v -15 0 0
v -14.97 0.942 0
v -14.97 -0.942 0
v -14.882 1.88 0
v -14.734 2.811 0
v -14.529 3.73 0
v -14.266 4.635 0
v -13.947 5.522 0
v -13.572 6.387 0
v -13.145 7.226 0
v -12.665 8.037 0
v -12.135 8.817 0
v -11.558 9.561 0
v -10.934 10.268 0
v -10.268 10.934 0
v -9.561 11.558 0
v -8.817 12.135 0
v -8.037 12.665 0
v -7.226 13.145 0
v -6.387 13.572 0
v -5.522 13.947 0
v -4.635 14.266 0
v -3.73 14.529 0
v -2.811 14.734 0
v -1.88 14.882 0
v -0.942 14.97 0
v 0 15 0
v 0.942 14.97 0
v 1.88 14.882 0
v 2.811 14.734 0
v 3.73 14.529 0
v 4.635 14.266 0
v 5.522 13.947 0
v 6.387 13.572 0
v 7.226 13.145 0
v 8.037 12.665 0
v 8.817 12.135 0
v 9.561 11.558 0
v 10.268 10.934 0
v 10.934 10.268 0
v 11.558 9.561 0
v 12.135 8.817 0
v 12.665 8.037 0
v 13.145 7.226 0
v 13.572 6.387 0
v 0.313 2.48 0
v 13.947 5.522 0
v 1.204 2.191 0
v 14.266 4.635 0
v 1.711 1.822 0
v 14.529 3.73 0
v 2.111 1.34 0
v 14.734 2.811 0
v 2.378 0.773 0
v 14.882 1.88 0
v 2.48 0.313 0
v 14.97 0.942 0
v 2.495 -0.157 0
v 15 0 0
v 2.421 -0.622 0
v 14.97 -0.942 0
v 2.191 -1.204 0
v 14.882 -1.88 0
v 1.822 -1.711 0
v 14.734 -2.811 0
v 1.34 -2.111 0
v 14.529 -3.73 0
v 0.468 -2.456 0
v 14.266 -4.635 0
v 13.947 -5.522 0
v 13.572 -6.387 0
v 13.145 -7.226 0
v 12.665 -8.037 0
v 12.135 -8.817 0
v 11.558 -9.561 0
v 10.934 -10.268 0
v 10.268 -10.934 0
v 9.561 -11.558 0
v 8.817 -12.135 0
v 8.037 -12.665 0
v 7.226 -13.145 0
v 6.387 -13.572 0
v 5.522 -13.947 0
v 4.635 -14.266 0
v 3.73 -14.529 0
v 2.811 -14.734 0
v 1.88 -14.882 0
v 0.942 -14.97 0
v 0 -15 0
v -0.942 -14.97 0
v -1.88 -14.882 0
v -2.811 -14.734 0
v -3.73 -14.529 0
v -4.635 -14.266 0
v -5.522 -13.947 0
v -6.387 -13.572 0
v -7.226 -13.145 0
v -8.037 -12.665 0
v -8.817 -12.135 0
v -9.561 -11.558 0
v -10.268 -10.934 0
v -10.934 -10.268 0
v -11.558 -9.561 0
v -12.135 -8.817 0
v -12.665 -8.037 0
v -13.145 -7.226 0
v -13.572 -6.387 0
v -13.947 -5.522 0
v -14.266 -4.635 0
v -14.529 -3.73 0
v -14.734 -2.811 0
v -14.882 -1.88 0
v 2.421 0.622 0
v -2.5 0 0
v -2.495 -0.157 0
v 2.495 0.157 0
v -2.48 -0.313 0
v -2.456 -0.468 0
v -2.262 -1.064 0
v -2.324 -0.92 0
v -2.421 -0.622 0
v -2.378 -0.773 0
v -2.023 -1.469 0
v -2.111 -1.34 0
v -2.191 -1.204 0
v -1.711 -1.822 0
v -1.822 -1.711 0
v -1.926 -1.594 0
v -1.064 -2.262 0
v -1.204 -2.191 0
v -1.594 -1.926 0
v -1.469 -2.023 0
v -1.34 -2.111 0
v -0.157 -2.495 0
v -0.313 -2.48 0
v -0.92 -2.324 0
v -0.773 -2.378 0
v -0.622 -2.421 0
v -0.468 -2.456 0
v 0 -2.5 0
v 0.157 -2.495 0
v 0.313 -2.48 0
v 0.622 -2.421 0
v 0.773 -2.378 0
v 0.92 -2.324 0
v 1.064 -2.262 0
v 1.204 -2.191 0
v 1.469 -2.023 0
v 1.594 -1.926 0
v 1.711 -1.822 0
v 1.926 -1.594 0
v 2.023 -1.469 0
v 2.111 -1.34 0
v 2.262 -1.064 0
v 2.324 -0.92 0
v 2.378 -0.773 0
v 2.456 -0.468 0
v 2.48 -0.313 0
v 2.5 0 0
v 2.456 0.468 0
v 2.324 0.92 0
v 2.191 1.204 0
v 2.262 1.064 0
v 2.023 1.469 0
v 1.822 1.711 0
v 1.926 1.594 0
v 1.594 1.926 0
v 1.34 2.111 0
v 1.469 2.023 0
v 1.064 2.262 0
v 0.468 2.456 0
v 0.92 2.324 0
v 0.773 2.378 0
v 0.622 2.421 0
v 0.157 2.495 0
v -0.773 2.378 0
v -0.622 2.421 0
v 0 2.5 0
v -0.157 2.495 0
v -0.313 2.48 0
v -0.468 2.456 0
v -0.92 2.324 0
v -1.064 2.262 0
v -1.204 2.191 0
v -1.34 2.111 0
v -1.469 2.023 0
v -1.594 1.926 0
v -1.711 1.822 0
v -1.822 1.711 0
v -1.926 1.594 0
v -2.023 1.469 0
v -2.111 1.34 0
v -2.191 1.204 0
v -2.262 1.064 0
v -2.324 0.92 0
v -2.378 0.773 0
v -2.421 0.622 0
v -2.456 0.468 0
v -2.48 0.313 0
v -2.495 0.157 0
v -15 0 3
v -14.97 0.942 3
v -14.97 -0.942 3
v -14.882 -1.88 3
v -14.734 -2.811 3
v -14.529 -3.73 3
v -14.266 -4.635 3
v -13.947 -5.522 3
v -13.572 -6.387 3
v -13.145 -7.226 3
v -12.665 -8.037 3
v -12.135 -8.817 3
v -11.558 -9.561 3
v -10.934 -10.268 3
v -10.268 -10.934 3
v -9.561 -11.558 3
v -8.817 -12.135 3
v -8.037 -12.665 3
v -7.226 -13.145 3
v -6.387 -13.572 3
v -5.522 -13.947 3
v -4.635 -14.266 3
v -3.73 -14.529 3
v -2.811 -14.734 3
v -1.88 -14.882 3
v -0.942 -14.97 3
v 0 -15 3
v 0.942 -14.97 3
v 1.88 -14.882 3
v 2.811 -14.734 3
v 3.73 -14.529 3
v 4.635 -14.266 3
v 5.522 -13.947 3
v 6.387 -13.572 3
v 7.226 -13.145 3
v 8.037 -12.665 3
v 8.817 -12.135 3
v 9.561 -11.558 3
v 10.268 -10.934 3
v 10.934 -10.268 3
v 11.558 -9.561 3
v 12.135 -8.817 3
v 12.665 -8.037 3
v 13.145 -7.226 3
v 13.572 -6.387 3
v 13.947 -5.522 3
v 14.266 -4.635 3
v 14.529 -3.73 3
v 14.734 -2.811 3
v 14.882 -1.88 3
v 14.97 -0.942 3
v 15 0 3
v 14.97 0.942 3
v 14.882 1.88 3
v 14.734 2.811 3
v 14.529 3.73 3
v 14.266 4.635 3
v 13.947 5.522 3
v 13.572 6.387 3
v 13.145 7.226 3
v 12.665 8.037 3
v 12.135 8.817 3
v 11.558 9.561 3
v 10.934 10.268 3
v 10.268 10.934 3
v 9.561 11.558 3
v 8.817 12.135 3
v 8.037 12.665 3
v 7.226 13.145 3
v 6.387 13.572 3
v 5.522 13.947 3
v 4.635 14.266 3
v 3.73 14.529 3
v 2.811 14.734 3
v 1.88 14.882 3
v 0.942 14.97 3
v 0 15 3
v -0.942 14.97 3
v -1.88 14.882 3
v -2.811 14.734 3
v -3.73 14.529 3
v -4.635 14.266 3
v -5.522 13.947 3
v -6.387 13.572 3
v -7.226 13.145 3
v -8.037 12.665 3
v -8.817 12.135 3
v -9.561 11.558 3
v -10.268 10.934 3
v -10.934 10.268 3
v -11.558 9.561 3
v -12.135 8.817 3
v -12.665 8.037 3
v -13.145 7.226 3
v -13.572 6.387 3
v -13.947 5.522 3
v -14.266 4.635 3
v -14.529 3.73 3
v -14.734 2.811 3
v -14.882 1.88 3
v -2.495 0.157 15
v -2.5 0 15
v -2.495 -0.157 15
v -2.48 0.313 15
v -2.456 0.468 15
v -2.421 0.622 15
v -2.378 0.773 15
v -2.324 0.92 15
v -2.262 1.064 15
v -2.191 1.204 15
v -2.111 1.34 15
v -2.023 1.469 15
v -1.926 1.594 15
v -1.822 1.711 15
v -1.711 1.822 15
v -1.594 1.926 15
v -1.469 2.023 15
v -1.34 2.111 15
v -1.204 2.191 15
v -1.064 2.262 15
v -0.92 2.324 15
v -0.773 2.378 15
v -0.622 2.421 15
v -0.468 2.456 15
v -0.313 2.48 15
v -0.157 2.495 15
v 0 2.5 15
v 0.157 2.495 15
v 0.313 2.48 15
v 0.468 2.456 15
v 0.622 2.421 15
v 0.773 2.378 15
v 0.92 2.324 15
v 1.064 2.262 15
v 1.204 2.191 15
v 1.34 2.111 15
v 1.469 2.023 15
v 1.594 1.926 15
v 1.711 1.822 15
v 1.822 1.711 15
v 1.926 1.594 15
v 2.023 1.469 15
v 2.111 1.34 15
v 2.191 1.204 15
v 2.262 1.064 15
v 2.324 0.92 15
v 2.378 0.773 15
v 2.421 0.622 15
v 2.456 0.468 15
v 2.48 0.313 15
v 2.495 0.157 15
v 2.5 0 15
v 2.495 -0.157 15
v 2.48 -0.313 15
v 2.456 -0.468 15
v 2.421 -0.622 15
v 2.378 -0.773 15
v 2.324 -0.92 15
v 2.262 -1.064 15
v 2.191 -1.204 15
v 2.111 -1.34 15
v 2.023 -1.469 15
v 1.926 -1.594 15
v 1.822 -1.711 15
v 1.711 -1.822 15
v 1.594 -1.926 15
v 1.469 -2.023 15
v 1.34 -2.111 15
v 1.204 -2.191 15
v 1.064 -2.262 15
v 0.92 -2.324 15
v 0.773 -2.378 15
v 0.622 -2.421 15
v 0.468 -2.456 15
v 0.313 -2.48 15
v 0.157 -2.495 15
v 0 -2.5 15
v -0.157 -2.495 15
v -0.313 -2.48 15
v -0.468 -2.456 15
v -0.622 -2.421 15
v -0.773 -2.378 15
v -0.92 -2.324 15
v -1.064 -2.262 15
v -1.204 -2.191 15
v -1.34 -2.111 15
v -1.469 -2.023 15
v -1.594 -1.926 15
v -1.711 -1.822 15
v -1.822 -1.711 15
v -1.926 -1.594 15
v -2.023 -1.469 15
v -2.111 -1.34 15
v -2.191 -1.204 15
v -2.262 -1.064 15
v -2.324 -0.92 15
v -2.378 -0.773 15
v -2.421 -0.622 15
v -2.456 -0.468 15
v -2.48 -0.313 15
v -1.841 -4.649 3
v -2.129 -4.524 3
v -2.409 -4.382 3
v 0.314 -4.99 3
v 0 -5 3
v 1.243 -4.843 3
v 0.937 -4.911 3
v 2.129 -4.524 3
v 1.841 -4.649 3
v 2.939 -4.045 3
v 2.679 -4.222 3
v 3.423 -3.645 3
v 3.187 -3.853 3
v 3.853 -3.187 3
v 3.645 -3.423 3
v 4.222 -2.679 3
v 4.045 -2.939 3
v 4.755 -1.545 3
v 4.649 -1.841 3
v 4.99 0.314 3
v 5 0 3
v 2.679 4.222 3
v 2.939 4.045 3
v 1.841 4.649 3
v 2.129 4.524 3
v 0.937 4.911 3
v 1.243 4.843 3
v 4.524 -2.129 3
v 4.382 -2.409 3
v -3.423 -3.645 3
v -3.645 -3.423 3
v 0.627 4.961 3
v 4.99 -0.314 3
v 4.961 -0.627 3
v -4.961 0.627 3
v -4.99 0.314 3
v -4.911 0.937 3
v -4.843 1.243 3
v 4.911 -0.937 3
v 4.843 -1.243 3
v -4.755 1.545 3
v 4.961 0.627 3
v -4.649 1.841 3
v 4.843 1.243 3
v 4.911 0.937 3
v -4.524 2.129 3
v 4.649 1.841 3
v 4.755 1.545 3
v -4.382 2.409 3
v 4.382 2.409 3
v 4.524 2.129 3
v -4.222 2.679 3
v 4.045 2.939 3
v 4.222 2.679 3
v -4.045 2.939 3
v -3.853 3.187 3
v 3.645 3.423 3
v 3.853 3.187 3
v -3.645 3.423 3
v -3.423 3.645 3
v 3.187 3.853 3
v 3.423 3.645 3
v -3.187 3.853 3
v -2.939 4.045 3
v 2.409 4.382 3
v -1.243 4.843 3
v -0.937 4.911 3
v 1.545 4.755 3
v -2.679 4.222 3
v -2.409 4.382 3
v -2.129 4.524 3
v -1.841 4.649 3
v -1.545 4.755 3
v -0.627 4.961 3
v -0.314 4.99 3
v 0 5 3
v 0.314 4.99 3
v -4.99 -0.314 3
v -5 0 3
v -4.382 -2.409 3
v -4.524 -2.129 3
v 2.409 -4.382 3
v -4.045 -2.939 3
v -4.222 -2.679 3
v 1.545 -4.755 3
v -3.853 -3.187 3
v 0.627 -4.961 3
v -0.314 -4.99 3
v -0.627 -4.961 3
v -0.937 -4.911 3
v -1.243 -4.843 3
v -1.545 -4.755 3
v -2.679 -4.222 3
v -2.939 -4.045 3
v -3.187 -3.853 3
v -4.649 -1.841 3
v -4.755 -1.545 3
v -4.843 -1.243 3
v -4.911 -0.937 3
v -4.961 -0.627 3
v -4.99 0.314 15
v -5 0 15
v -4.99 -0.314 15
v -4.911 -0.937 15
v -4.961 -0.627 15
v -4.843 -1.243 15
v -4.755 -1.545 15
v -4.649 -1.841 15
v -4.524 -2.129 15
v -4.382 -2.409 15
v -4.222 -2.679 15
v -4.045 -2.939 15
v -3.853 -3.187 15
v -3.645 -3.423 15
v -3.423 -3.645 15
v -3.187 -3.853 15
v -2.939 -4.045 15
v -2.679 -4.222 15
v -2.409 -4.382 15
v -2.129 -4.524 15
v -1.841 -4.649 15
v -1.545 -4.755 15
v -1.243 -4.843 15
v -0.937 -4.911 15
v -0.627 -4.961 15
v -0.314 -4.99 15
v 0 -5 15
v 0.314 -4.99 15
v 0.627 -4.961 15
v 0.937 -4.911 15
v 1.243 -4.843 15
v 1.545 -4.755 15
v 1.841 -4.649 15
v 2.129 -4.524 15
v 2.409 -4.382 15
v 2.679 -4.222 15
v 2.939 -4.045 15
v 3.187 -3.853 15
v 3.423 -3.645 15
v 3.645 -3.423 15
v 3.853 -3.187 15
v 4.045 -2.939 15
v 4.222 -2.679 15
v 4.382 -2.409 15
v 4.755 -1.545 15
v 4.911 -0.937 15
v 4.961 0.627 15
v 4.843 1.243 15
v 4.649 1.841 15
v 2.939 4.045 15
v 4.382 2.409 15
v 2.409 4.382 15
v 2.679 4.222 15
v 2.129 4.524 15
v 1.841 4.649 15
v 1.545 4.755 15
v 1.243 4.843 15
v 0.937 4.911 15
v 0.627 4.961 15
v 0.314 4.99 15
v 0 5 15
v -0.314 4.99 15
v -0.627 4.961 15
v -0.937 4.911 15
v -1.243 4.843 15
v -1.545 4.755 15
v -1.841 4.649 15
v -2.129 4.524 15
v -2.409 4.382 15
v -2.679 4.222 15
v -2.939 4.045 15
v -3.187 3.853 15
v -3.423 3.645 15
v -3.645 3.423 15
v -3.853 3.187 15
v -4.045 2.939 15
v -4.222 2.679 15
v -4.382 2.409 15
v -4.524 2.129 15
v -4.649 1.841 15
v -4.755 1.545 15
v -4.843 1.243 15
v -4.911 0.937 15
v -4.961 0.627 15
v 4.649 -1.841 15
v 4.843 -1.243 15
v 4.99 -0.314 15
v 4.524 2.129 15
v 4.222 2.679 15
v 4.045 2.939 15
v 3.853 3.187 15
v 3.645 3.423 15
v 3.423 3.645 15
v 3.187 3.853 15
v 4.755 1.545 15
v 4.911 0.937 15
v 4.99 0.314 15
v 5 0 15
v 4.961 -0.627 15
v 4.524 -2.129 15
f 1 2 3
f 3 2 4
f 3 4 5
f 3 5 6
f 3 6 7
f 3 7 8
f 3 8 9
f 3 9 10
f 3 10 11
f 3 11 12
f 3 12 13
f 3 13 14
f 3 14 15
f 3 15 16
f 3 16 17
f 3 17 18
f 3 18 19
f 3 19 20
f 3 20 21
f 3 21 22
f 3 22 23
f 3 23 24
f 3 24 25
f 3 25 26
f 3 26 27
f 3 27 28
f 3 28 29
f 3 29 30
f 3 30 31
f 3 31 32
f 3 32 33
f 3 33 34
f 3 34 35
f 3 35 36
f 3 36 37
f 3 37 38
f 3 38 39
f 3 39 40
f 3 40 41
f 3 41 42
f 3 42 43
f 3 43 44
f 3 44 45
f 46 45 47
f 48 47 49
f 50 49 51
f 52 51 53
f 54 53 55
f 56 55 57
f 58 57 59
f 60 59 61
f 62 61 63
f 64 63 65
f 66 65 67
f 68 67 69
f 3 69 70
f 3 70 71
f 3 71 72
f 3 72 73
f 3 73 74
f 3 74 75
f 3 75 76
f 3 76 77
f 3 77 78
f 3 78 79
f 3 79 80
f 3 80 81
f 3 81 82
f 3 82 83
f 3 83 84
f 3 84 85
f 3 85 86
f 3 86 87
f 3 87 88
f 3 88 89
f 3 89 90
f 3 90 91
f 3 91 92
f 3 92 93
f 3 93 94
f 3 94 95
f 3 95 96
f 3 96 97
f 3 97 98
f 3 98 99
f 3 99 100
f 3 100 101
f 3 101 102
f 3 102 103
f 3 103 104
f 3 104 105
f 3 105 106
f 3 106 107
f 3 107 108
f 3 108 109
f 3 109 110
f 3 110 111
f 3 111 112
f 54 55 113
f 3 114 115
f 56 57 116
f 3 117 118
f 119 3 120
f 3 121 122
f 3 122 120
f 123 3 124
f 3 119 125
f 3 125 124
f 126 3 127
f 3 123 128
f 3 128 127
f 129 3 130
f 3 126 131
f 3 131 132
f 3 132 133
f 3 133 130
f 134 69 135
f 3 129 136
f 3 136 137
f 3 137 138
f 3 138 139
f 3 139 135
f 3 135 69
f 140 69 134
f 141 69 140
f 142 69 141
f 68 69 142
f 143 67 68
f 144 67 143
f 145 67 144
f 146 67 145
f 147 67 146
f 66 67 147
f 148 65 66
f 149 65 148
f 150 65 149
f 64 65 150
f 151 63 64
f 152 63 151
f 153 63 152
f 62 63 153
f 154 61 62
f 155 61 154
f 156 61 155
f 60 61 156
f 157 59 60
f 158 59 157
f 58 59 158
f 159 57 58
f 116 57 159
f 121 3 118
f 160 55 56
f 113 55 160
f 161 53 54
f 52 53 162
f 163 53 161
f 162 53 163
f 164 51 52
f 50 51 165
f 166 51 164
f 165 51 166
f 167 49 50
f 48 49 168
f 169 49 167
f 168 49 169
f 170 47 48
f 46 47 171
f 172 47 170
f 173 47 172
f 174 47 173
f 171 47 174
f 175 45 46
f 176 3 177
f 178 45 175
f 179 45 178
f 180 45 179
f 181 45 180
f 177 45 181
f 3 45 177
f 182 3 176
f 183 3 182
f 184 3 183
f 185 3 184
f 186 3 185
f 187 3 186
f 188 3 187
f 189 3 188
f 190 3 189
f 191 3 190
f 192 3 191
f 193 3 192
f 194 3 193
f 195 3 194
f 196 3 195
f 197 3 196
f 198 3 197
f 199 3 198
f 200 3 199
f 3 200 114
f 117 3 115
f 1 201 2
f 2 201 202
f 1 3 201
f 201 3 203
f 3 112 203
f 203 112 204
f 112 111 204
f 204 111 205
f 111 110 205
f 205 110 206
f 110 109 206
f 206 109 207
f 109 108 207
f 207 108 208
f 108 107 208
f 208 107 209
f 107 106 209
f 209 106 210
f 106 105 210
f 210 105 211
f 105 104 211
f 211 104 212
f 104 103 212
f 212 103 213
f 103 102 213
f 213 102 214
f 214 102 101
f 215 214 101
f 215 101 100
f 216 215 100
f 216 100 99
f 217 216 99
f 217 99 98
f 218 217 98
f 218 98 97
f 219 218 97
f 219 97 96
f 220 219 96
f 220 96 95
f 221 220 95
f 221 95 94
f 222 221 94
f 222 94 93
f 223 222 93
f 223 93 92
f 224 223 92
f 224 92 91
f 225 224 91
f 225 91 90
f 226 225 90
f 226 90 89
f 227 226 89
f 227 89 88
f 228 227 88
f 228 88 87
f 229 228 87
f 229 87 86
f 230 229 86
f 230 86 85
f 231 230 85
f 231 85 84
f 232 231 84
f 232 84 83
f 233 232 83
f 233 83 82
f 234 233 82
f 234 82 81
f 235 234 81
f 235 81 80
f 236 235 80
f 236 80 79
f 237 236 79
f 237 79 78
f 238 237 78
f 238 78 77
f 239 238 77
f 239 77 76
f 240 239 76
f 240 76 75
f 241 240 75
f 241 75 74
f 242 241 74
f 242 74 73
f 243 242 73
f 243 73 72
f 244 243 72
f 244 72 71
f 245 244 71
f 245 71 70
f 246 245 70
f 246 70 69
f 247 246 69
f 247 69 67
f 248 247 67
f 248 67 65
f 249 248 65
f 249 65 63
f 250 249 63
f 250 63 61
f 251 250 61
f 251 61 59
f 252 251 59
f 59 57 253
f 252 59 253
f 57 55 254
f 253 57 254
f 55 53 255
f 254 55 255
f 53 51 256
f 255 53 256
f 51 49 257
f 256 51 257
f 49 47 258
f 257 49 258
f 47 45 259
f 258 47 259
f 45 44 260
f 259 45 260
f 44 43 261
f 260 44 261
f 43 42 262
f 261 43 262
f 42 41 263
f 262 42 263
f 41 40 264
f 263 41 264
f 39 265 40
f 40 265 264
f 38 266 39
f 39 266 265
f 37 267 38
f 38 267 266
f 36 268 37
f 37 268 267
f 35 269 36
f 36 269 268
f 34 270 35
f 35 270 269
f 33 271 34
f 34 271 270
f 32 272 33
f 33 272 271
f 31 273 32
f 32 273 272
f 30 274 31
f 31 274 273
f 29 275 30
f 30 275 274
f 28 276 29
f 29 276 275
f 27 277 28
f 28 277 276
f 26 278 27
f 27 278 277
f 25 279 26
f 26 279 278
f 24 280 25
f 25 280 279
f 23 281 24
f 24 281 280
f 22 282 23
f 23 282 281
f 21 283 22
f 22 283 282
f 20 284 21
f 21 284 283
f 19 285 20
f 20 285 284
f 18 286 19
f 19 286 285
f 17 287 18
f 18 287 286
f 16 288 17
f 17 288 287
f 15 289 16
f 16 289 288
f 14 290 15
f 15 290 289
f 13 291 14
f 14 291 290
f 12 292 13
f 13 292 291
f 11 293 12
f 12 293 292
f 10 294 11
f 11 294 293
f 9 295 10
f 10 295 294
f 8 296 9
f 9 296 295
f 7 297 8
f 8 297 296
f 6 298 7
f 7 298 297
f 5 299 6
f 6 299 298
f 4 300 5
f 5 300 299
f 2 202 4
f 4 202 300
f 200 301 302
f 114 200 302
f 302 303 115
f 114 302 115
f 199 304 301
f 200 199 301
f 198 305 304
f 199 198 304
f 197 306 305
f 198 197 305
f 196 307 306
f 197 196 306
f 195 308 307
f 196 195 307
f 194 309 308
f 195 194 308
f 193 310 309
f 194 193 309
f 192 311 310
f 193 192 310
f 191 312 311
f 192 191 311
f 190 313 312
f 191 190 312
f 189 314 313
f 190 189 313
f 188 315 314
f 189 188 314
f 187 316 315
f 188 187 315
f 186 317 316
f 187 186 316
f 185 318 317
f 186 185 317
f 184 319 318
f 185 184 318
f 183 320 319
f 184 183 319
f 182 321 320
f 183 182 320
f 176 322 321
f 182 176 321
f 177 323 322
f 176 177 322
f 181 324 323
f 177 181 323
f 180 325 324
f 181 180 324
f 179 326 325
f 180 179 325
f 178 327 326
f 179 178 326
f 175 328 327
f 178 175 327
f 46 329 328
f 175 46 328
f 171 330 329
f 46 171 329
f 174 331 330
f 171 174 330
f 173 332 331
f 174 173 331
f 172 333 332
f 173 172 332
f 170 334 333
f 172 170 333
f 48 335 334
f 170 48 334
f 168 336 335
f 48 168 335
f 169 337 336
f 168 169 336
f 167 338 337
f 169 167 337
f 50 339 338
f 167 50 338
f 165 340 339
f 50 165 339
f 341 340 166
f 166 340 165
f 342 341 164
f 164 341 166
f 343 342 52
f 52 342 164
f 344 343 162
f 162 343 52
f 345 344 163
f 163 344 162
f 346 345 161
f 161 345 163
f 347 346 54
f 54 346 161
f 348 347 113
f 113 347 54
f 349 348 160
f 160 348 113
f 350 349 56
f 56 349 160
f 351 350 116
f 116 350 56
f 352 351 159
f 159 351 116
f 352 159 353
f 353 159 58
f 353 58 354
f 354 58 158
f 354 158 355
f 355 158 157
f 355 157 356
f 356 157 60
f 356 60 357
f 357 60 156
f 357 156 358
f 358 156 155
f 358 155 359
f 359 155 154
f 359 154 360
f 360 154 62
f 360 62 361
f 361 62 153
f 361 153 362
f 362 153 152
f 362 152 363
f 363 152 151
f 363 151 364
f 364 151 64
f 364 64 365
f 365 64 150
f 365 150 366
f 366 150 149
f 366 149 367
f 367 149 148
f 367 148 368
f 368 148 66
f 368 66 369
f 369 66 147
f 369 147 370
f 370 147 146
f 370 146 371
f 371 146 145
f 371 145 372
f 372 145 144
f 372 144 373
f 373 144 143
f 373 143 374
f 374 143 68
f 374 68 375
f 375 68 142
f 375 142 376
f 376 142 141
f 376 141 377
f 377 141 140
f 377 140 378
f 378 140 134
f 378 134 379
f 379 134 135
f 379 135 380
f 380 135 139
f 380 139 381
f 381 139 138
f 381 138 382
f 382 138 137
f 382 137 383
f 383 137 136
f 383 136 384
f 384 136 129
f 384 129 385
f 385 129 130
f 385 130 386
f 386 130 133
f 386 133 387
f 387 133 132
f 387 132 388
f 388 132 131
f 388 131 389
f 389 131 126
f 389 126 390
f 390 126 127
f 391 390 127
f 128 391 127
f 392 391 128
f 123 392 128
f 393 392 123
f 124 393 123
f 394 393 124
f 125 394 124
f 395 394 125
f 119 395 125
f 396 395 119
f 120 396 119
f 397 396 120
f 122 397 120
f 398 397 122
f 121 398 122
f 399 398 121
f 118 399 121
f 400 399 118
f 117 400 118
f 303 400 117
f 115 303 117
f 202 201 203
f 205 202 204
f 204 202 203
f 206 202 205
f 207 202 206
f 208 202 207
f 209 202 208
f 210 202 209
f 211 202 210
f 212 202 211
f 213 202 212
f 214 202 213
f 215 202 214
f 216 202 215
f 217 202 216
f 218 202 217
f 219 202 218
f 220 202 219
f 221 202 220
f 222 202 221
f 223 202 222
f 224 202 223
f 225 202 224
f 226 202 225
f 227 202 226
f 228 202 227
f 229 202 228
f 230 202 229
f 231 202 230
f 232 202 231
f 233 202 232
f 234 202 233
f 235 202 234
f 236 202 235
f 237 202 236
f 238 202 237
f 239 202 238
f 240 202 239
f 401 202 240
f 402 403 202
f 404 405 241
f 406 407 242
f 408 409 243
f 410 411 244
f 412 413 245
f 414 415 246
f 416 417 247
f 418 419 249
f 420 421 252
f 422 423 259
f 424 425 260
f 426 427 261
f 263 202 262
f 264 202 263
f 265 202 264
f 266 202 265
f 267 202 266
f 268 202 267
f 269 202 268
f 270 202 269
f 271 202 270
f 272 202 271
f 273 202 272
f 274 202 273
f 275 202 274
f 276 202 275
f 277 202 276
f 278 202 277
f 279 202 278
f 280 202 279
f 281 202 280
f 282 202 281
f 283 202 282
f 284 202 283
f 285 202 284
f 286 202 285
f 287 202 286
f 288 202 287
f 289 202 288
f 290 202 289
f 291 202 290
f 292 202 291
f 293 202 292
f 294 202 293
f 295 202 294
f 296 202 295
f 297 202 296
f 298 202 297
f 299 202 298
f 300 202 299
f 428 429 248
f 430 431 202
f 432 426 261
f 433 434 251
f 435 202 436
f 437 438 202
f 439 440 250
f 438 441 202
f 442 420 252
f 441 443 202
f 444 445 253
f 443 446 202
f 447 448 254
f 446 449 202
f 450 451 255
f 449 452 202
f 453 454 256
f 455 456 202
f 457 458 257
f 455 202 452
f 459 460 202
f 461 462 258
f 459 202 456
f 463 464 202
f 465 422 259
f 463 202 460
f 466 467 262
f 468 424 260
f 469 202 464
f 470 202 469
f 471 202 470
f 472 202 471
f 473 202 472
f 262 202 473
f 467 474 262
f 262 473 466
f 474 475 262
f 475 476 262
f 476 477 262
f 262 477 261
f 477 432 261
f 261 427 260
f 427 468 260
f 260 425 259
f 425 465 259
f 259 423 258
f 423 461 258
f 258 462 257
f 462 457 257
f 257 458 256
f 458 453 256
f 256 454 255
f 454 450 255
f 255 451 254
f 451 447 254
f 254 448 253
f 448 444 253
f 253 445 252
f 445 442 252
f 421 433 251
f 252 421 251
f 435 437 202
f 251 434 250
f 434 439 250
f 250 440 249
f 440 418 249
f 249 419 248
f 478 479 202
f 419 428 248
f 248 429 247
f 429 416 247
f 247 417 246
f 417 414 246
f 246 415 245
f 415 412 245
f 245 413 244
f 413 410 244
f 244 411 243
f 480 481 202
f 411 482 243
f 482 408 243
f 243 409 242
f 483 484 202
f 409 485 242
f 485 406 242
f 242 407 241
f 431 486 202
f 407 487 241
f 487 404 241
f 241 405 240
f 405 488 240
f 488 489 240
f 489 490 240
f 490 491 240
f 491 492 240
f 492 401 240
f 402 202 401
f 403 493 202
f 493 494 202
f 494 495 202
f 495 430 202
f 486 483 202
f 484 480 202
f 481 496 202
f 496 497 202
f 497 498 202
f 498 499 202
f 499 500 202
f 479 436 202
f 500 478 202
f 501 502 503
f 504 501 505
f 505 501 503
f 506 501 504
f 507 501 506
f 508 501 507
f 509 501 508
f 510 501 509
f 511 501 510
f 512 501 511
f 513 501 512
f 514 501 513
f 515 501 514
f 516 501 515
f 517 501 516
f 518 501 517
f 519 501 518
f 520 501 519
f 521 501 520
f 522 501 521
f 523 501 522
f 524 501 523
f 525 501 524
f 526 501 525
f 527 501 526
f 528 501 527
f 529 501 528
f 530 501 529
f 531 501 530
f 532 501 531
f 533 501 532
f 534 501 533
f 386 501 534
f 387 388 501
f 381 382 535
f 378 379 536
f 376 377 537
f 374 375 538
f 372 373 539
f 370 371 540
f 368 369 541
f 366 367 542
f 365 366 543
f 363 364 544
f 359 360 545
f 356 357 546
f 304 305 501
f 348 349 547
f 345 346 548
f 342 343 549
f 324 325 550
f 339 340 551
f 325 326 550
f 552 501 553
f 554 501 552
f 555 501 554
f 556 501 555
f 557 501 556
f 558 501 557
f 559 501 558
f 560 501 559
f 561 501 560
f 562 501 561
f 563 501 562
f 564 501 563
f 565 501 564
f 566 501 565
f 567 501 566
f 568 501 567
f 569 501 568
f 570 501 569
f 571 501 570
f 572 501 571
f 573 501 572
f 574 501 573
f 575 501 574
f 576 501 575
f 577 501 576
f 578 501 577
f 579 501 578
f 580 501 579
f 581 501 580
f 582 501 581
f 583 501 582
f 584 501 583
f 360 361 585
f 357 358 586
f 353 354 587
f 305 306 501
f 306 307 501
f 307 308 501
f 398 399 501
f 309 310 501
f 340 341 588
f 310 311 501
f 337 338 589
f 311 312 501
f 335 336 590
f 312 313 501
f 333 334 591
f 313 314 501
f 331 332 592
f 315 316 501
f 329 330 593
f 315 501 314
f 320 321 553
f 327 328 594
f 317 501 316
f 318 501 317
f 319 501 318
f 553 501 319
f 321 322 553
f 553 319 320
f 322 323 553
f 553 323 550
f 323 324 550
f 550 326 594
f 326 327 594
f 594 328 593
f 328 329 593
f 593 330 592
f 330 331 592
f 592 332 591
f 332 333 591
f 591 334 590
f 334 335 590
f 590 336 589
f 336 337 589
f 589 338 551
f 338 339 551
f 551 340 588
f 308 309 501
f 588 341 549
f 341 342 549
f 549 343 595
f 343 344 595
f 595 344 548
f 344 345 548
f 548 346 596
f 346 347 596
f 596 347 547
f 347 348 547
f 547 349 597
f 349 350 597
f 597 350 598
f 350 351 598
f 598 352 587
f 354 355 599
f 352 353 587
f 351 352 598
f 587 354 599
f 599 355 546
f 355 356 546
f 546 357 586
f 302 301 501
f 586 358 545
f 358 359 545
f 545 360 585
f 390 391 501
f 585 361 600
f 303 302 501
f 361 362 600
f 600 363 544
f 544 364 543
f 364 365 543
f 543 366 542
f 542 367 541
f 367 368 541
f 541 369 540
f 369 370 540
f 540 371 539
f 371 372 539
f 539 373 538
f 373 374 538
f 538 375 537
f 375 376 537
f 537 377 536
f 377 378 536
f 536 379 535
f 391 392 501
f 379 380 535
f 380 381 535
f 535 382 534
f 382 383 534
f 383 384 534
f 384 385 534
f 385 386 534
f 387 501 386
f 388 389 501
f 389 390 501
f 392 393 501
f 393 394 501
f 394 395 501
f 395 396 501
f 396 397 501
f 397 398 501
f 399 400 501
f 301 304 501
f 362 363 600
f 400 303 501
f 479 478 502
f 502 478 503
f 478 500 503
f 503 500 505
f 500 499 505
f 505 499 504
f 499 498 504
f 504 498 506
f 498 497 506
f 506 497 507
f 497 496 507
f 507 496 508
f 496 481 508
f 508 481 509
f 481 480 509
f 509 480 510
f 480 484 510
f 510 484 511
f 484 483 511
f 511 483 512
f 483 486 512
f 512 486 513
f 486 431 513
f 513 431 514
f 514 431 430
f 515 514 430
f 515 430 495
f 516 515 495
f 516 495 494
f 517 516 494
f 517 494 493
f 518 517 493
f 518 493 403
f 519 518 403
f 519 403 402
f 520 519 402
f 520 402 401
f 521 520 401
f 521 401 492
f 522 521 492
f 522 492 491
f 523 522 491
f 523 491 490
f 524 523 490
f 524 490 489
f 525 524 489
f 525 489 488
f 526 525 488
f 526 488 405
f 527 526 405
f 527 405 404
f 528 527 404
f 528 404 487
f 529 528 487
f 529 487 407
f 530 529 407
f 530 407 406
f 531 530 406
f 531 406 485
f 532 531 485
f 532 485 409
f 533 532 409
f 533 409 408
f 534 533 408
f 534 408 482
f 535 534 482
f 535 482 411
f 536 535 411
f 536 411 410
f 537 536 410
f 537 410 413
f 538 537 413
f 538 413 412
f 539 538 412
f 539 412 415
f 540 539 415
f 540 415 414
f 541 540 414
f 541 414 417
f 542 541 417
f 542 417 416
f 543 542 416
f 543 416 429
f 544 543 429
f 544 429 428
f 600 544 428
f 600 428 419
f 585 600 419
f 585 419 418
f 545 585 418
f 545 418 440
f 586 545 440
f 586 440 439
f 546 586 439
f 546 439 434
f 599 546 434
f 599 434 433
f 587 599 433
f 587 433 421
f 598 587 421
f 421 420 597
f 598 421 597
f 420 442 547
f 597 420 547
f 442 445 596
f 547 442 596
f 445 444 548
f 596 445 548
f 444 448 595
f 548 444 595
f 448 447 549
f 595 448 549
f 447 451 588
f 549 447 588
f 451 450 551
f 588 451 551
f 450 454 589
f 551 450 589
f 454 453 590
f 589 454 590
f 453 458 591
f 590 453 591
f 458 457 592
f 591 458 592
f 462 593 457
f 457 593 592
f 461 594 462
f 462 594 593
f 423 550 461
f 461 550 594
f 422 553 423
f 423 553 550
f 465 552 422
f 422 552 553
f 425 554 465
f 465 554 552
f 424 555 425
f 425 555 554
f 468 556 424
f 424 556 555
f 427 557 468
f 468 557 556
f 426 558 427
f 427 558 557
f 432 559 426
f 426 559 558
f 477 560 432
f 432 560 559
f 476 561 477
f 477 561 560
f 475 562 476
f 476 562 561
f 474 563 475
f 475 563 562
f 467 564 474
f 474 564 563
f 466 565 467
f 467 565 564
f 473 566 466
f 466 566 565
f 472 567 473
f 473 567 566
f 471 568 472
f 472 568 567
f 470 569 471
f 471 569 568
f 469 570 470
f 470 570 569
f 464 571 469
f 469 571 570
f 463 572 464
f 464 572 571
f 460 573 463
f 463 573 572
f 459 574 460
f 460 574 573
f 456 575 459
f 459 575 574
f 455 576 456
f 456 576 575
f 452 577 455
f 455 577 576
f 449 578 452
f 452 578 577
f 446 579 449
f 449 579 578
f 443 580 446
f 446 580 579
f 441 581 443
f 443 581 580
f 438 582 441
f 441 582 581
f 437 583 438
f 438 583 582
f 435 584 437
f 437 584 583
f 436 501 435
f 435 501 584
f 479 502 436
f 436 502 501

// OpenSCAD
$fn = 100;

base();

module base (){
	union(){
		difference() {
			union() {
				cylinder(d=30, h=3);
				cylinder(d=10, h=15);
			}
			cylinder(d=5, h=50, center=true);
		}
	}
}
